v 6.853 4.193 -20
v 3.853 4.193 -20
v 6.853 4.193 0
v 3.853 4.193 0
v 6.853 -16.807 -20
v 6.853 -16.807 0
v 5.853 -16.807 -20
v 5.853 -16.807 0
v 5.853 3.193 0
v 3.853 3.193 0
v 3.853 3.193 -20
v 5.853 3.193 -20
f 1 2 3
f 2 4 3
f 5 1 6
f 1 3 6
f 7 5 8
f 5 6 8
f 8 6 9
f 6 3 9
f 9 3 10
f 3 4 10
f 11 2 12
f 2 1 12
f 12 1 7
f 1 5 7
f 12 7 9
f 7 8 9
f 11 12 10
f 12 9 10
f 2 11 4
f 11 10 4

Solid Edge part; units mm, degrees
sketch "Sketch1" plane through (0, 0, 0) normal (0, 0, 1) x (1, 0, 0)
  line L0 (3.8532, 3.1931) -> (5.8532, 3.1931)
  line L1 (5.8532, 3.1931) -> (5.8532, -16.8069)
  line L2 (5.8532, -16.8069) -> (6.8532, -16.8069)
  line L3 (6.8532, 4.1931) -> (6.8532, -16.8069)
  line L4 (3.8532, 4.1931) -> (6.8532, 4.1931)
  line L5 (3.8532, 4.1931) -> (3.8532, 3.1931)
extrude "Protrusion1" add sketch "Sketch1" against normal blind 20
